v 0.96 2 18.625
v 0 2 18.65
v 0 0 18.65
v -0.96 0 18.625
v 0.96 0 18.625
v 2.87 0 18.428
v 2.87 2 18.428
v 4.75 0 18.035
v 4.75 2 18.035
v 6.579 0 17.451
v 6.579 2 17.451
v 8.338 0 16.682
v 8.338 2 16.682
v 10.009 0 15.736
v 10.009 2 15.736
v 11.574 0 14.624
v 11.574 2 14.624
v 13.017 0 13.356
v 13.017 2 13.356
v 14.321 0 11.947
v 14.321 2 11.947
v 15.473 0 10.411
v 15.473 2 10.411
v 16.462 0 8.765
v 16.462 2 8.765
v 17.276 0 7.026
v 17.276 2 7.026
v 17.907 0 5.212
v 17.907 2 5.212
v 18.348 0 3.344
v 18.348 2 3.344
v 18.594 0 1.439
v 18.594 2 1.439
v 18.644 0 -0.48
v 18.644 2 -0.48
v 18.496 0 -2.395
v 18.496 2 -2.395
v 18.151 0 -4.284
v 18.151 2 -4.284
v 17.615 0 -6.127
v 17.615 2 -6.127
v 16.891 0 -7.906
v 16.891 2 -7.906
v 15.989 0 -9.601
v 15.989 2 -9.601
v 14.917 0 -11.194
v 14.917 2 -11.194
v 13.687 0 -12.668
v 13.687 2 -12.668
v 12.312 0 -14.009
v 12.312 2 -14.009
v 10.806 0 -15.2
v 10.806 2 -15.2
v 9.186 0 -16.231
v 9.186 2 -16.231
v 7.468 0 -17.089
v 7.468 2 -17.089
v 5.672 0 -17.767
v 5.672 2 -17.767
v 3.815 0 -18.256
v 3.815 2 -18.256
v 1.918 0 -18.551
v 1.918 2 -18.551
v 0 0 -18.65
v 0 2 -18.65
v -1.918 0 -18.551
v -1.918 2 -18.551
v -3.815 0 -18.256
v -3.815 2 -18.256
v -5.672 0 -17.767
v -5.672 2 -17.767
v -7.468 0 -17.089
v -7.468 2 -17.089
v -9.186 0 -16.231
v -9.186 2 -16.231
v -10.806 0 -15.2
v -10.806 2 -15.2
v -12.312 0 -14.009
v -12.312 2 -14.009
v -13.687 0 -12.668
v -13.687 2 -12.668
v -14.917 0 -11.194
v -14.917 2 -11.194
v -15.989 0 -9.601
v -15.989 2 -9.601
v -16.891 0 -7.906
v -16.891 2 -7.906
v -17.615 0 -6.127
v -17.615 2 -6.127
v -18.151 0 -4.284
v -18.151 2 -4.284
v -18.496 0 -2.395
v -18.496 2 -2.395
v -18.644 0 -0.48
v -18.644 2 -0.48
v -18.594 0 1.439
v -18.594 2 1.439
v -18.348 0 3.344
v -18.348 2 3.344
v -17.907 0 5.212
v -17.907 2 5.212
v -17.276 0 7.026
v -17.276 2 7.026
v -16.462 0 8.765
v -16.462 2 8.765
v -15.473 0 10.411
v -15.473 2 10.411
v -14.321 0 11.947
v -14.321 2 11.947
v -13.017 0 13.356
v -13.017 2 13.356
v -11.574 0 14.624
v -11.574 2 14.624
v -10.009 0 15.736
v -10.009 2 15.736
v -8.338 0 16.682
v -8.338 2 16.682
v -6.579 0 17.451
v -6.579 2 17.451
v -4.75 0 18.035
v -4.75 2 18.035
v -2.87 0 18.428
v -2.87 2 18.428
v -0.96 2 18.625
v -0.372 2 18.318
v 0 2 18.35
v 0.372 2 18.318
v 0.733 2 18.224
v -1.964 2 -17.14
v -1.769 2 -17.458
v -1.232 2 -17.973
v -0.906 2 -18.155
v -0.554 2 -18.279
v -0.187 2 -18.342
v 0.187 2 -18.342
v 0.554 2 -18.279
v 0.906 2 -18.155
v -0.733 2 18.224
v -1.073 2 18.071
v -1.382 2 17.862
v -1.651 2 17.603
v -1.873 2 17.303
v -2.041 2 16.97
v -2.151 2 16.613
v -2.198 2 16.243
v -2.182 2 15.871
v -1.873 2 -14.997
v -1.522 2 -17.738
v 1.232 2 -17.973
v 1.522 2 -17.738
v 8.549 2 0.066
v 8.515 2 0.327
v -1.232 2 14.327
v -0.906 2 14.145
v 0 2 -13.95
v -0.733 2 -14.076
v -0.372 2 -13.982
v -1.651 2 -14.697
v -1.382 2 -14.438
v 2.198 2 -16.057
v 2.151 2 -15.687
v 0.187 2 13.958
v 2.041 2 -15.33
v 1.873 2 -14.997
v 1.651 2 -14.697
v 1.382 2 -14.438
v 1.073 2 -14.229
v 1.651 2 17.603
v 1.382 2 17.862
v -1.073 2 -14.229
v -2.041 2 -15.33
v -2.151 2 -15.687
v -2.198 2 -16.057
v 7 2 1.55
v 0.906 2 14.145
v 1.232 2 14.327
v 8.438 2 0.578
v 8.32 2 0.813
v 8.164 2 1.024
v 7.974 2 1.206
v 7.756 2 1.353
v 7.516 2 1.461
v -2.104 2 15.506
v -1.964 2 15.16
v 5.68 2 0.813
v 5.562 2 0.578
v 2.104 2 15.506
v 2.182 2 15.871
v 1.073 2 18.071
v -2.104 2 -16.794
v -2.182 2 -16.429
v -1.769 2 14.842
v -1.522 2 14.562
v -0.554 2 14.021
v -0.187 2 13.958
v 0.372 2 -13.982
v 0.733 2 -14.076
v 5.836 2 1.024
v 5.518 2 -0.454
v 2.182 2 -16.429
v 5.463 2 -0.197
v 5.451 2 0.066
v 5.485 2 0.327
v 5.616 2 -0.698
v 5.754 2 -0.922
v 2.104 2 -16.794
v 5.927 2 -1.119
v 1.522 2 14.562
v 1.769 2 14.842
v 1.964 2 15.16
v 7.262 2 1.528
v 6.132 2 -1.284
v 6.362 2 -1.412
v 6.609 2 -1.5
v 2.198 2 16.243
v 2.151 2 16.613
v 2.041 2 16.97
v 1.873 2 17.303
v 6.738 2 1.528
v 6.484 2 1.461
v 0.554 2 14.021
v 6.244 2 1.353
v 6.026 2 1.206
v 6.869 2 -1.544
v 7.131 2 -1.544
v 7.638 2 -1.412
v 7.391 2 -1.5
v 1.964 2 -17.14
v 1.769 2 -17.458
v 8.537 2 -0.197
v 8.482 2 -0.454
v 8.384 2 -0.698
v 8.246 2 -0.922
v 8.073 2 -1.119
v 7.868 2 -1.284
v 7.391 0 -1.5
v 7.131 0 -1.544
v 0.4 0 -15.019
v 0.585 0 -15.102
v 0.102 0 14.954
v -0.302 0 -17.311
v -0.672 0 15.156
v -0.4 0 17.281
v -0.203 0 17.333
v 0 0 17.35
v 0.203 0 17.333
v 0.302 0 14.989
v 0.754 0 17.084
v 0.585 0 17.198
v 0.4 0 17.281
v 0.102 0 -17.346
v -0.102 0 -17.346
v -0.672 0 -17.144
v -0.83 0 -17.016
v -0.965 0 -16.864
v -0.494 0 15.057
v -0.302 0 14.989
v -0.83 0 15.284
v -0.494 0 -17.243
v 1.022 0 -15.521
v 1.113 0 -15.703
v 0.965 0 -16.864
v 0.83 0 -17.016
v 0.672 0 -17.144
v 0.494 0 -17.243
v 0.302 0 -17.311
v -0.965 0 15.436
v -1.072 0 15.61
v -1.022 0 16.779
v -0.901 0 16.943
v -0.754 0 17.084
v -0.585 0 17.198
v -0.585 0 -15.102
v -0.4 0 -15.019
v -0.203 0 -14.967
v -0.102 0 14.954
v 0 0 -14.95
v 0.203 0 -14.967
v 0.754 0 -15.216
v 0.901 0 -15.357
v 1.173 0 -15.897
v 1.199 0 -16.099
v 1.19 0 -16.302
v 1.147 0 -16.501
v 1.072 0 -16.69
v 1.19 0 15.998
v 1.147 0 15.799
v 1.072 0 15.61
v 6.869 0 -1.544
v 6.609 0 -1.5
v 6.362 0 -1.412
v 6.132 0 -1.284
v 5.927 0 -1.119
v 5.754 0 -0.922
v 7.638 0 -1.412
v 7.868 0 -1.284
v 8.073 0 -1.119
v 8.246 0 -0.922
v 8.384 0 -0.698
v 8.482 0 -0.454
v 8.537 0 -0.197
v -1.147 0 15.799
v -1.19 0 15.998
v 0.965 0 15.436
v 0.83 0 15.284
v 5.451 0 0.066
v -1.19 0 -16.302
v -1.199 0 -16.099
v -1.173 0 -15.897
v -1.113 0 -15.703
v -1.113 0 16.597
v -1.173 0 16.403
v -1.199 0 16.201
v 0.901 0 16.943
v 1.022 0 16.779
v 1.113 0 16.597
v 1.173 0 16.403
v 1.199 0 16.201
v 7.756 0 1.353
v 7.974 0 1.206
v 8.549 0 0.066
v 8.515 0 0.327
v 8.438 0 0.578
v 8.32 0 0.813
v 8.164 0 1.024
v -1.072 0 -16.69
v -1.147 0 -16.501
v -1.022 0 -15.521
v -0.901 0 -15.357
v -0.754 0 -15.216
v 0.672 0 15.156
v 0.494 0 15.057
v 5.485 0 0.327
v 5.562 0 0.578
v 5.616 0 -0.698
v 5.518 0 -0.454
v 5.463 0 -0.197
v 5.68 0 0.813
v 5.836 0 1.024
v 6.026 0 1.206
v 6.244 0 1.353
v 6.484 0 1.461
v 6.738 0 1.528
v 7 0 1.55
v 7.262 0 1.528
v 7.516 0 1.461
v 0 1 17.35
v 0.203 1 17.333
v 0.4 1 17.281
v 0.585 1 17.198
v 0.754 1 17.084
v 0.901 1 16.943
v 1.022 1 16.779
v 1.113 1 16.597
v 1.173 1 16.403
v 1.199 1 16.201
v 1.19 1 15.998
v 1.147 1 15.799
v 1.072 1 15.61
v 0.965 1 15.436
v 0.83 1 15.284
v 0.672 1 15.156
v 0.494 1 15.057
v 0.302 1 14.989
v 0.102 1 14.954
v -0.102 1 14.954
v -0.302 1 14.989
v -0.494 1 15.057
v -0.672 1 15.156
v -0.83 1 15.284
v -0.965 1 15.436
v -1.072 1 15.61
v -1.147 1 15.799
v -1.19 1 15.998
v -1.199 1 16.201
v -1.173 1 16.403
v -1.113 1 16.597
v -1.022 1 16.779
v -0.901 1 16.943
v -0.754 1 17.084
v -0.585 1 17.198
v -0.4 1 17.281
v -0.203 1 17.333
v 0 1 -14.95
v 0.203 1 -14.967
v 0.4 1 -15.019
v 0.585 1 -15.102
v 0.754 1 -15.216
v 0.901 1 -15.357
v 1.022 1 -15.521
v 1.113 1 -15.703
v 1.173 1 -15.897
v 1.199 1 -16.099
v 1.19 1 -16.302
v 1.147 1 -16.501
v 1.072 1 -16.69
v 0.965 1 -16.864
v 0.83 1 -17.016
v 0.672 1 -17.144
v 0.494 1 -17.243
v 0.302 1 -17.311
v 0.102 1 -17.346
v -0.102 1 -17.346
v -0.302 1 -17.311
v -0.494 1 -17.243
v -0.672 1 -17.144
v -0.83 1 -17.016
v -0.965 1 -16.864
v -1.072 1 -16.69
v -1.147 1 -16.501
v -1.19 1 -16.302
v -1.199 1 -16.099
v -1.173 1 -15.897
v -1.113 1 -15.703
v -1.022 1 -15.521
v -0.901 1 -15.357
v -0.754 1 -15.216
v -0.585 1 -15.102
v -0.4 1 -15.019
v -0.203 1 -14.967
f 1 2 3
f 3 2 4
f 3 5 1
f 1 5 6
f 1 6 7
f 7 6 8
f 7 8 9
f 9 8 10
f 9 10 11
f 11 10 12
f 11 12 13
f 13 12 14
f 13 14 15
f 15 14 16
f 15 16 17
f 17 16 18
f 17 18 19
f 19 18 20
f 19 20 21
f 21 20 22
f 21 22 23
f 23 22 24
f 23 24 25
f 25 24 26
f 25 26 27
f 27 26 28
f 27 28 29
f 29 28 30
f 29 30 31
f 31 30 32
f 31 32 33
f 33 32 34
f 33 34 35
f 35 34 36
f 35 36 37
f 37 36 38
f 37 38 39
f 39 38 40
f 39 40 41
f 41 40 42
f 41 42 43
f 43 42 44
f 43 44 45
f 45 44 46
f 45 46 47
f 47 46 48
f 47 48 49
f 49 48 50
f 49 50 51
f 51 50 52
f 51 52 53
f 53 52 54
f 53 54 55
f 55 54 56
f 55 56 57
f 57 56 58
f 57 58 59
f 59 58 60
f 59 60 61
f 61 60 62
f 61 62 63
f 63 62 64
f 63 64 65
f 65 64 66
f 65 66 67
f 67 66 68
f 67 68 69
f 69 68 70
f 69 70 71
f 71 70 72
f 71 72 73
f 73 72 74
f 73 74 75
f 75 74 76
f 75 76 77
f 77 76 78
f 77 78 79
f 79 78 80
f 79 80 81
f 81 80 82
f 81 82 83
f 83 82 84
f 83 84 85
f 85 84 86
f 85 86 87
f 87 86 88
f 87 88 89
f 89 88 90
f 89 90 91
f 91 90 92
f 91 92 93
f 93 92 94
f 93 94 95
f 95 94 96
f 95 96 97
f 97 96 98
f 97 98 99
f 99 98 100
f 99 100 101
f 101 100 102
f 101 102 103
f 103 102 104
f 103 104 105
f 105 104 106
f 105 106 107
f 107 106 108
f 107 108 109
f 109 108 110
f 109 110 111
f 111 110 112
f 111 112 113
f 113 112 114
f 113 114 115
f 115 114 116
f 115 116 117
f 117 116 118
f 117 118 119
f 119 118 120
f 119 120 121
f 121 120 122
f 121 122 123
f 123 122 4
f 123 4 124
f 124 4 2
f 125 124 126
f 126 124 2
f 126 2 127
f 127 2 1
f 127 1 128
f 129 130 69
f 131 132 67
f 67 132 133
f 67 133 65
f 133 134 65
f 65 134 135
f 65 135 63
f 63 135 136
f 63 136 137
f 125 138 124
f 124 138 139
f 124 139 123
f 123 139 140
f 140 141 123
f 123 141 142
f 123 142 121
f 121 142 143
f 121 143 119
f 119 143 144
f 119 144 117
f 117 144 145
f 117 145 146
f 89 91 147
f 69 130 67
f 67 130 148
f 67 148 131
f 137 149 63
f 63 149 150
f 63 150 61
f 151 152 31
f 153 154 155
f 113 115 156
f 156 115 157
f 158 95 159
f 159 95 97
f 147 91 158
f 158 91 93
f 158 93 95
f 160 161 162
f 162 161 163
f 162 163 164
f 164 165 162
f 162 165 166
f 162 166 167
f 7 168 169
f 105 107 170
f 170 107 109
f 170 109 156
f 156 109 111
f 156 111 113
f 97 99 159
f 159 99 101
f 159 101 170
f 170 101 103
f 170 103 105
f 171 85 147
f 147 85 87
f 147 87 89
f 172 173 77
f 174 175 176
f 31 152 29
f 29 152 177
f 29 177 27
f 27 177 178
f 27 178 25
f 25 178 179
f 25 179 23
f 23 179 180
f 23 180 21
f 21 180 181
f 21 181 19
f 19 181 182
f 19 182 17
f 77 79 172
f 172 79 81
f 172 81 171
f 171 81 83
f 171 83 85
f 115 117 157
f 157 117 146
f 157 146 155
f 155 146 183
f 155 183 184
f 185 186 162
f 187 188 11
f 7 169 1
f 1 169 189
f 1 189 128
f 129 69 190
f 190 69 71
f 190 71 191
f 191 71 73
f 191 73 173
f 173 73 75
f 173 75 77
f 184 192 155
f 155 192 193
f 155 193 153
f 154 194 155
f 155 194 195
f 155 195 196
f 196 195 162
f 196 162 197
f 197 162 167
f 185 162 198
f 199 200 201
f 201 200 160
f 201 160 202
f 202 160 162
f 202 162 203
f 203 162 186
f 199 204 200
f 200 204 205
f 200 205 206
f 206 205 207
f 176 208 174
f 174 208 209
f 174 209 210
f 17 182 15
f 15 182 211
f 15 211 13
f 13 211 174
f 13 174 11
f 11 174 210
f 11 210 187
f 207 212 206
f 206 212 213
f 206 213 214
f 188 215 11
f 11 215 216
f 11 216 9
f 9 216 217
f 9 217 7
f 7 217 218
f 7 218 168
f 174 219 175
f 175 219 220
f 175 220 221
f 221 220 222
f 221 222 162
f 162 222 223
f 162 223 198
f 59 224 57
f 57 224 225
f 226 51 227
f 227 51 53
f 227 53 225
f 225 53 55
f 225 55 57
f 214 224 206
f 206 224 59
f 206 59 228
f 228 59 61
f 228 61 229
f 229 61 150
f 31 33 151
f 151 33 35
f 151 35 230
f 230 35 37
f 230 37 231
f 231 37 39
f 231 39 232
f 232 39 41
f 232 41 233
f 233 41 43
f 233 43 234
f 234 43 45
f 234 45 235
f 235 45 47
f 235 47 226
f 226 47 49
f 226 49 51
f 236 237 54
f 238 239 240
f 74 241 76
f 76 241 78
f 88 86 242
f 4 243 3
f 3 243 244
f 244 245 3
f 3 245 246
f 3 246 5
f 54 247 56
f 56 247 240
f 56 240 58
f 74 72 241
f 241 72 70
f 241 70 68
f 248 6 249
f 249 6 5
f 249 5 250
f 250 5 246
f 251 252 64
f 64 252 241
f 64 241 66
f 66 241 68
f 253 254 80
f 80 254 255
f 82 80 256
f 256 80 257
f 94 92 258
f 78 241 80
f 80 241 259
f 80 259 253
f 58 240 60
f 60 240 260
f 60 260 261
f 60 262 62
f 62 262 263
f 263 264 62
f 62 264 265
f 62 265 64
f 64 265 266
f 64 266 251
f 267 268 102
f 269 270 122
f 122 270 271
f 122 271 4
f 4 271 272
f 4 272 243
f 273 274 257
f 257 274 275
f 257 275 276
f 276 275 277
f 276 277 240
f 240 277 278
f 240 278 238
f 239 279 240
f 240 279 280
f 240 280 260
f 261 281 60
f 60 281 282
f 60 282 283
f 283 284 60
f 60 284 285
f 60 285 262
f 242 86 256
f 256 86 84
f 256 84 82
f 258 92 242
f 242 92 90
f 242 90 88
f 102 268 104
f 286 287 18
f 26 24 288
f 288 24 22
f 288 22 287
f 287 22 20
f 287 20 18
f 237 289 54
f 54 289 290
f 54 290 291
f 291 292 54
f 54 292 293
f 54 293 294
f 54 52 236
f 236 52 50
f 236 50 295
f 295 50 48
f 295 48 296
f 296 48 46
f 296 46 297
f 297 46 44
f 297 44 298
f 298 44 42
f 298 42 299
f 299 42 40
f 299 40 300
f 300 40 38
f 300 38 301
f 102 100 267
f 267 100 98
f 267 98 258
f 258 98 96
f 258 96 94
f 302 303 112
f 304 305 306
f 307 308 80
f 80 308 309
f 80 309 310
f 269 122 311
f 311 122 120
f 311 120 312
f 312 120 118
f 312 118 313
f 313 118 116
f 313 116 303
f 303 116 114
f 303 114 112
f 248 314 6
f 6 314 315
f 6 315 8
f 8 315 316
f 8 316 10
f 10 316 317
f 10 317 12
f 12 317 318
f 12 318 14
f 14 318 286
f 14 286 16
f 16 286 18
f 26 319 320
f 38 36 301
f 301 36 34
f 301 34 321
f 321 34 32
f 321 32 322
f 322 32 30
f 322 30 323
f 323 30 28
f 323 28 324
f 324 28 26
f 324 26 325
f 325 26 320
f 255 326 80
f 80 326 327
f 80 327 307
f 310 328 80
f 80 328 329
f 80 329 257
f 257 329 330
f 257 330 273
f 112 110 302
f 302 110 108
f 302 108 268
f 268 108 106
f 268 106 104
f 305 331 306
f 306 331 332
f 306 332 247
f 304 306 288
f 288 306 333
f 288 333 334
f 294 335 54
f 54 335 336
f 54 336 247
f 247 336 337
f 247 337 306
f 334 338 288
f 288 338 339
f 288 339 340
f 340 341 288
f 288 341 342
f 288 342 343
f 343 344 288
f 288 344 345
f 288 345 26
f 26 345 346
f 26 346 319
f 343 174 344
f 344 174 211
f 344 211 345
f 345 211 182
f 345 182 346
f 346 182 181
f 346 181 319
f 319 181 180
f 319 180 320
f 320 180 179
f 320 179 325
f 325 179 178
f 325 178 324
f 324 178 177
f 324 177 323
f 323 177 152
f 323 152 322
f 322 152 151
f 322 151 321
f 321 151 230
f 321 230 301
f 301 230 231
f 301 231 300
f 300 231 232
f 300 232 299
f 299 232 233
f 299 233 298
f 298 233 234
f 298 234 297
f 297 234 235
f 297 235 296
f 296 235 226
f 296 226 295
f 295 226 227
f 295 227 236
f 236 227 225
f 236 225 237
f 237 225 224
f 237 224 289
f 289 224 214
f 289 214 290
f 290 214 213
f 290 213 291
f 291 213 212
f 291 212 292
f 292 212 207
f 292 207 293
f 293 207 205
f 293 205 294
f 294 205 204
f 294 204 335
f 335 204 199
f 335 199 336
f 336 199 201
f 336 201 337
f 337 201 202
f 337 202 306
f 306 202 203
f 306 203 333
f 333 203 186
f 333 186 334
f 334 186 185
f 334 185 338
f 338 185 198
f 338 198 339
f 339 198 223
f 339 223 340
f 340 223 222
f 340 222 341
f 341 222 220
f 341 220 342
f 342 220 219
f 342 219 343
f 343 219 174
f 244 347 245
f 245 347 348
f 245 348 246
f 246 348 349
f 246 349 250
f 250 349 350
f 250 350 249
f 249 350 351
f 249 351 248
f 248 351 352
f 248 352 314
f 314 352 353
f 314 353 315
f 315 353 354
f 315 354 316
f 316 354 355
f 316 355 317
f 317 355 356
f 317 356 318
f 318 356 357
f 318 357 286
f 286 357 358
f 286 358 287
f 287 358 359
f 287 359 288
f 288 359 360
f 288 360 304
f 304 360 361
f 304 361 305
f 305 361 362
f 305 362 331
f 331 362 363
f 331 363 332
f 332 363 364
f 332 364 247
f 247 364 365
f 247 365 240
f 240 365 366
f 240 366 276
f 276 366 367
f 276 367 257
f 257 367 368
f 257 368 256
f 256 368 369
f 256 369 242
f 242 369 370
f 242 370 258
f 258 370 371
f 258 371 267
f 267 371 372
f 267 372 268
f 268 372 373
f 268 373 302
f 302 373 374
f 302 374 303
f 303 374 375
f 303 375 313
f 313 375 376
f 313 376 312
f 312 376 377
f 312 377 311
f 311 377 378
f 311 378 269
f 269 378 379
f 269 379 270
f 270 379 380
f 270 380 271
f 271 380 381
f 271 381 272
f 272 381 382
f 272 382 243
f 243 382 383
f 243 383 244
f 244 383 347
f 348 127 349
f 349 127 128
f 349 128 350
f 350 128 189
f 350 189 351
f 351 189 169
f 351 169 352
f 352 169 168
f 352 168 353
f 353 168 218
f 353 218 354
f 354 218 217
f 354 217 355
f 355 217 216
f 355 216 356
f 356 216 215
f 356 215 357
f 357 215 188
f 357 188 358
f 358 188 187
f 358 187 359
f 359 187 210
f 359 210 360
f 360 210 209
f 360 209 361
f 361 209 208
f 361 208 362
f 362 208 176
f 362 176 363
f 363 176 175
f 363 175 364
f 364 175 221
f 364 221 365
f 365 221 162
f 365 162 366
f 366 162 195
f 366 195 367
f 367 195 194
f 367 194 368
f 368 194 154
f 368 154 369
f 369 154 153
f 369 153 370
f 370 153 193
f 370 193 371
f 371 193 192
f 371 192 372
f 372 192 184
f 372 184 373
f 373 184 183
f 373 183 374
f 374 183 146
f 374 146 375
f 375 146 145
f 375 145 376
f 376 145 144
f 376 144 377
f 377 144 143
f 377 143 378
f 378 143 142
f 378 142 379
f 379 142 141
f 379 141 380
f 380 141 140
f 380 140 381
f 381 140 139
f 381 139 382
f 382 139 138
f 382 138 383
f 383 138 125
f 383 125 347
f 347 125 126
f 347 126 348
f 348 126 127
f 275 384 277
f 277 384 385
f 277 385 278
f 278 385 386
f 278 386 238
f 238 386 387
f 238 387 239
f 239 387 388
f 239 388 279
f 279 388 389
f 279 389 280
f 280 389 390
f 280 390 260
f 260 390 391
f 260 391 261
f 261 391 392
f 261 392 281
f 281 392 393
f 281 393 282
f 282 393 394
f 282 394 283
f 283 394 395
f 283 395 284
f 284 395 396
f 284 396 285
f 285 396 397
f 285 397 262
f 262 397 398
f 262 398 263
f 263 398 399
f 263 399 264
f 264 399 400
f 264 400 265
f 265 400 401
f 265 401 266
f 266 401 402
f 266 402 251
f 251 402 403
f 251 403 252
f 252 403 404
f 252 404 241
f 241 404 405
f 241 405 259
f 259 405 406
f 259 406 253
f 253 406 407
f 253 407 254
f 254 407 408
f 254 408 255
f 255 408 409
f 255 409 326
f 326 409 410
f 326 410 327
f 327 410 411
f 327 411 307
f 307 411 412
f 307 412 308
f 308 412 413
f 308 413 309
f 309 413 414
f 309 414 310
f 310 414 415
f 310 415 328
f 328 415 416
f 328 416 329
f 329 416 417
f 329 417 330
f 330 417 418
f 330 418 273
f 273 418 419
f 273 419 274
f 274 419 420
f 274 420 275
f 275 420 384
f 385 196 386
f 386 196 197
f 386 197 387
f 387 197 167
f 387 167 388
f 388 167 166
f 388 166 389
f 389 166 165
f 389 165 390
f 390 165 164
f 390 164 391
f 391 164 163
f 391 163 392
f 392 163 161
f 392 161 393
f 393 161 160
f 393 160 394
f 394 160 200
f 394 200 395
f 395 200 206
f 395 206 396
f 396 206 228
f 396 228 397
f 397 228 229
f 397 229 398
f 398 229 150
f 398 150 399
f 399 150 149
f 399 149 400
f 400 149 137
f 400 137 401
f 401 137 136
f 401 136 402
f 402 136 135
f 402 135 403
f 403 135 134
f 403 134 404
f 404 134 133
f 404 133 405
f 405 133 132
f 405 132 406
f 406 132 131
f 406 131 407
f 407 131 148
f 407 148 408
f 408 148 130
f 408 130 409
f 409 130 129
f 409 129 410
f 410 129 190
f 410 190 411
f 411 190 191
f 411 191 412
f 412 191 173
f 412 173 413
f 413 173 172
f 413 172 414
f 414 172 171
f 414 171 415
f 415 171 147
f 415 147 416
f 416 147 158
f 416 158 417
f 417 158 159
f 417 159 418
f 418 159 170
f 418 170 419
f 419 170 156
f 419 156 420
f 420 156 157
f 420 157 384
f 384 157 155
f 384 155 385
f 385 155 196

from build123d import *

# Parameters (mm, degrees)
SKETCH_1_R                 = 18.65
EXTRUDE_1_DEPTH            = 2
SKETCH_2_R                 = 1.55
CUT_EXTRUDE_1_DEPTH        = 2
HOLE_WIZARD_M21_AT_2_COUNT = 2
HOLE_WIZARD_M21_AT_2_PITCH = 32.3


with BuildPart() as part:
    # Эскиз1 → Бобышка-Вытянуть1 (new body)
    with BuildSketch(Plane(origin=(0, 0, 0), x_dir=(1, 0, 0), z_dir=(0, 1, 0))):
        Circle(SKETCH_1_R)
    extrude(amount=EXTRUDE_1_DEPTH)

    # Эскиз2 → Вырез-Вытянуть1 (cut)
    with BuildSketch(Plane(origin=(0, 2, 0), x_dir=(1, 0, 0), z_dir=(0, 1, 0))):
        with Locations((7, 0)):
            Circle(SKETCH_2_R)
    extrude(amount=-CUT_EXTRUDE_1_DEPTH, mode=Mode.SUBTRACT)

    # Эскиз4 → Зенковка для  винта с плоской головкой M21 (revolve, cut)
    with BuildSketch(Plane(origin=(0, 2, -16.15), x_dir=(0, 0, 1), z_dir=(1, 0, 0))):
        Polygon((0, 0), (0, 2), (1.2, 2), (1.2, 1), (2.2, 0), align=None)
    hole_wizard_m21 = revolve(axis=Axis((0, 8.35, -16.15), (0, -1, 0)), mode=Mode.SUBTRACT)

    # Зенковка для  винта с плоской головкой M21 at 2: Зенковка для  винта с плоской головкой M21 ×2
    with Locations(*[(0, 0, i * HOLE_WIZARD_M21_AT_2_PITCH) for i in range(1, HOLE_WIZARD_M21_AT_2_COUNT)]):
        add(hole_wizard_m21, mode=Mode.SUBTRACT)


solid = part.part
